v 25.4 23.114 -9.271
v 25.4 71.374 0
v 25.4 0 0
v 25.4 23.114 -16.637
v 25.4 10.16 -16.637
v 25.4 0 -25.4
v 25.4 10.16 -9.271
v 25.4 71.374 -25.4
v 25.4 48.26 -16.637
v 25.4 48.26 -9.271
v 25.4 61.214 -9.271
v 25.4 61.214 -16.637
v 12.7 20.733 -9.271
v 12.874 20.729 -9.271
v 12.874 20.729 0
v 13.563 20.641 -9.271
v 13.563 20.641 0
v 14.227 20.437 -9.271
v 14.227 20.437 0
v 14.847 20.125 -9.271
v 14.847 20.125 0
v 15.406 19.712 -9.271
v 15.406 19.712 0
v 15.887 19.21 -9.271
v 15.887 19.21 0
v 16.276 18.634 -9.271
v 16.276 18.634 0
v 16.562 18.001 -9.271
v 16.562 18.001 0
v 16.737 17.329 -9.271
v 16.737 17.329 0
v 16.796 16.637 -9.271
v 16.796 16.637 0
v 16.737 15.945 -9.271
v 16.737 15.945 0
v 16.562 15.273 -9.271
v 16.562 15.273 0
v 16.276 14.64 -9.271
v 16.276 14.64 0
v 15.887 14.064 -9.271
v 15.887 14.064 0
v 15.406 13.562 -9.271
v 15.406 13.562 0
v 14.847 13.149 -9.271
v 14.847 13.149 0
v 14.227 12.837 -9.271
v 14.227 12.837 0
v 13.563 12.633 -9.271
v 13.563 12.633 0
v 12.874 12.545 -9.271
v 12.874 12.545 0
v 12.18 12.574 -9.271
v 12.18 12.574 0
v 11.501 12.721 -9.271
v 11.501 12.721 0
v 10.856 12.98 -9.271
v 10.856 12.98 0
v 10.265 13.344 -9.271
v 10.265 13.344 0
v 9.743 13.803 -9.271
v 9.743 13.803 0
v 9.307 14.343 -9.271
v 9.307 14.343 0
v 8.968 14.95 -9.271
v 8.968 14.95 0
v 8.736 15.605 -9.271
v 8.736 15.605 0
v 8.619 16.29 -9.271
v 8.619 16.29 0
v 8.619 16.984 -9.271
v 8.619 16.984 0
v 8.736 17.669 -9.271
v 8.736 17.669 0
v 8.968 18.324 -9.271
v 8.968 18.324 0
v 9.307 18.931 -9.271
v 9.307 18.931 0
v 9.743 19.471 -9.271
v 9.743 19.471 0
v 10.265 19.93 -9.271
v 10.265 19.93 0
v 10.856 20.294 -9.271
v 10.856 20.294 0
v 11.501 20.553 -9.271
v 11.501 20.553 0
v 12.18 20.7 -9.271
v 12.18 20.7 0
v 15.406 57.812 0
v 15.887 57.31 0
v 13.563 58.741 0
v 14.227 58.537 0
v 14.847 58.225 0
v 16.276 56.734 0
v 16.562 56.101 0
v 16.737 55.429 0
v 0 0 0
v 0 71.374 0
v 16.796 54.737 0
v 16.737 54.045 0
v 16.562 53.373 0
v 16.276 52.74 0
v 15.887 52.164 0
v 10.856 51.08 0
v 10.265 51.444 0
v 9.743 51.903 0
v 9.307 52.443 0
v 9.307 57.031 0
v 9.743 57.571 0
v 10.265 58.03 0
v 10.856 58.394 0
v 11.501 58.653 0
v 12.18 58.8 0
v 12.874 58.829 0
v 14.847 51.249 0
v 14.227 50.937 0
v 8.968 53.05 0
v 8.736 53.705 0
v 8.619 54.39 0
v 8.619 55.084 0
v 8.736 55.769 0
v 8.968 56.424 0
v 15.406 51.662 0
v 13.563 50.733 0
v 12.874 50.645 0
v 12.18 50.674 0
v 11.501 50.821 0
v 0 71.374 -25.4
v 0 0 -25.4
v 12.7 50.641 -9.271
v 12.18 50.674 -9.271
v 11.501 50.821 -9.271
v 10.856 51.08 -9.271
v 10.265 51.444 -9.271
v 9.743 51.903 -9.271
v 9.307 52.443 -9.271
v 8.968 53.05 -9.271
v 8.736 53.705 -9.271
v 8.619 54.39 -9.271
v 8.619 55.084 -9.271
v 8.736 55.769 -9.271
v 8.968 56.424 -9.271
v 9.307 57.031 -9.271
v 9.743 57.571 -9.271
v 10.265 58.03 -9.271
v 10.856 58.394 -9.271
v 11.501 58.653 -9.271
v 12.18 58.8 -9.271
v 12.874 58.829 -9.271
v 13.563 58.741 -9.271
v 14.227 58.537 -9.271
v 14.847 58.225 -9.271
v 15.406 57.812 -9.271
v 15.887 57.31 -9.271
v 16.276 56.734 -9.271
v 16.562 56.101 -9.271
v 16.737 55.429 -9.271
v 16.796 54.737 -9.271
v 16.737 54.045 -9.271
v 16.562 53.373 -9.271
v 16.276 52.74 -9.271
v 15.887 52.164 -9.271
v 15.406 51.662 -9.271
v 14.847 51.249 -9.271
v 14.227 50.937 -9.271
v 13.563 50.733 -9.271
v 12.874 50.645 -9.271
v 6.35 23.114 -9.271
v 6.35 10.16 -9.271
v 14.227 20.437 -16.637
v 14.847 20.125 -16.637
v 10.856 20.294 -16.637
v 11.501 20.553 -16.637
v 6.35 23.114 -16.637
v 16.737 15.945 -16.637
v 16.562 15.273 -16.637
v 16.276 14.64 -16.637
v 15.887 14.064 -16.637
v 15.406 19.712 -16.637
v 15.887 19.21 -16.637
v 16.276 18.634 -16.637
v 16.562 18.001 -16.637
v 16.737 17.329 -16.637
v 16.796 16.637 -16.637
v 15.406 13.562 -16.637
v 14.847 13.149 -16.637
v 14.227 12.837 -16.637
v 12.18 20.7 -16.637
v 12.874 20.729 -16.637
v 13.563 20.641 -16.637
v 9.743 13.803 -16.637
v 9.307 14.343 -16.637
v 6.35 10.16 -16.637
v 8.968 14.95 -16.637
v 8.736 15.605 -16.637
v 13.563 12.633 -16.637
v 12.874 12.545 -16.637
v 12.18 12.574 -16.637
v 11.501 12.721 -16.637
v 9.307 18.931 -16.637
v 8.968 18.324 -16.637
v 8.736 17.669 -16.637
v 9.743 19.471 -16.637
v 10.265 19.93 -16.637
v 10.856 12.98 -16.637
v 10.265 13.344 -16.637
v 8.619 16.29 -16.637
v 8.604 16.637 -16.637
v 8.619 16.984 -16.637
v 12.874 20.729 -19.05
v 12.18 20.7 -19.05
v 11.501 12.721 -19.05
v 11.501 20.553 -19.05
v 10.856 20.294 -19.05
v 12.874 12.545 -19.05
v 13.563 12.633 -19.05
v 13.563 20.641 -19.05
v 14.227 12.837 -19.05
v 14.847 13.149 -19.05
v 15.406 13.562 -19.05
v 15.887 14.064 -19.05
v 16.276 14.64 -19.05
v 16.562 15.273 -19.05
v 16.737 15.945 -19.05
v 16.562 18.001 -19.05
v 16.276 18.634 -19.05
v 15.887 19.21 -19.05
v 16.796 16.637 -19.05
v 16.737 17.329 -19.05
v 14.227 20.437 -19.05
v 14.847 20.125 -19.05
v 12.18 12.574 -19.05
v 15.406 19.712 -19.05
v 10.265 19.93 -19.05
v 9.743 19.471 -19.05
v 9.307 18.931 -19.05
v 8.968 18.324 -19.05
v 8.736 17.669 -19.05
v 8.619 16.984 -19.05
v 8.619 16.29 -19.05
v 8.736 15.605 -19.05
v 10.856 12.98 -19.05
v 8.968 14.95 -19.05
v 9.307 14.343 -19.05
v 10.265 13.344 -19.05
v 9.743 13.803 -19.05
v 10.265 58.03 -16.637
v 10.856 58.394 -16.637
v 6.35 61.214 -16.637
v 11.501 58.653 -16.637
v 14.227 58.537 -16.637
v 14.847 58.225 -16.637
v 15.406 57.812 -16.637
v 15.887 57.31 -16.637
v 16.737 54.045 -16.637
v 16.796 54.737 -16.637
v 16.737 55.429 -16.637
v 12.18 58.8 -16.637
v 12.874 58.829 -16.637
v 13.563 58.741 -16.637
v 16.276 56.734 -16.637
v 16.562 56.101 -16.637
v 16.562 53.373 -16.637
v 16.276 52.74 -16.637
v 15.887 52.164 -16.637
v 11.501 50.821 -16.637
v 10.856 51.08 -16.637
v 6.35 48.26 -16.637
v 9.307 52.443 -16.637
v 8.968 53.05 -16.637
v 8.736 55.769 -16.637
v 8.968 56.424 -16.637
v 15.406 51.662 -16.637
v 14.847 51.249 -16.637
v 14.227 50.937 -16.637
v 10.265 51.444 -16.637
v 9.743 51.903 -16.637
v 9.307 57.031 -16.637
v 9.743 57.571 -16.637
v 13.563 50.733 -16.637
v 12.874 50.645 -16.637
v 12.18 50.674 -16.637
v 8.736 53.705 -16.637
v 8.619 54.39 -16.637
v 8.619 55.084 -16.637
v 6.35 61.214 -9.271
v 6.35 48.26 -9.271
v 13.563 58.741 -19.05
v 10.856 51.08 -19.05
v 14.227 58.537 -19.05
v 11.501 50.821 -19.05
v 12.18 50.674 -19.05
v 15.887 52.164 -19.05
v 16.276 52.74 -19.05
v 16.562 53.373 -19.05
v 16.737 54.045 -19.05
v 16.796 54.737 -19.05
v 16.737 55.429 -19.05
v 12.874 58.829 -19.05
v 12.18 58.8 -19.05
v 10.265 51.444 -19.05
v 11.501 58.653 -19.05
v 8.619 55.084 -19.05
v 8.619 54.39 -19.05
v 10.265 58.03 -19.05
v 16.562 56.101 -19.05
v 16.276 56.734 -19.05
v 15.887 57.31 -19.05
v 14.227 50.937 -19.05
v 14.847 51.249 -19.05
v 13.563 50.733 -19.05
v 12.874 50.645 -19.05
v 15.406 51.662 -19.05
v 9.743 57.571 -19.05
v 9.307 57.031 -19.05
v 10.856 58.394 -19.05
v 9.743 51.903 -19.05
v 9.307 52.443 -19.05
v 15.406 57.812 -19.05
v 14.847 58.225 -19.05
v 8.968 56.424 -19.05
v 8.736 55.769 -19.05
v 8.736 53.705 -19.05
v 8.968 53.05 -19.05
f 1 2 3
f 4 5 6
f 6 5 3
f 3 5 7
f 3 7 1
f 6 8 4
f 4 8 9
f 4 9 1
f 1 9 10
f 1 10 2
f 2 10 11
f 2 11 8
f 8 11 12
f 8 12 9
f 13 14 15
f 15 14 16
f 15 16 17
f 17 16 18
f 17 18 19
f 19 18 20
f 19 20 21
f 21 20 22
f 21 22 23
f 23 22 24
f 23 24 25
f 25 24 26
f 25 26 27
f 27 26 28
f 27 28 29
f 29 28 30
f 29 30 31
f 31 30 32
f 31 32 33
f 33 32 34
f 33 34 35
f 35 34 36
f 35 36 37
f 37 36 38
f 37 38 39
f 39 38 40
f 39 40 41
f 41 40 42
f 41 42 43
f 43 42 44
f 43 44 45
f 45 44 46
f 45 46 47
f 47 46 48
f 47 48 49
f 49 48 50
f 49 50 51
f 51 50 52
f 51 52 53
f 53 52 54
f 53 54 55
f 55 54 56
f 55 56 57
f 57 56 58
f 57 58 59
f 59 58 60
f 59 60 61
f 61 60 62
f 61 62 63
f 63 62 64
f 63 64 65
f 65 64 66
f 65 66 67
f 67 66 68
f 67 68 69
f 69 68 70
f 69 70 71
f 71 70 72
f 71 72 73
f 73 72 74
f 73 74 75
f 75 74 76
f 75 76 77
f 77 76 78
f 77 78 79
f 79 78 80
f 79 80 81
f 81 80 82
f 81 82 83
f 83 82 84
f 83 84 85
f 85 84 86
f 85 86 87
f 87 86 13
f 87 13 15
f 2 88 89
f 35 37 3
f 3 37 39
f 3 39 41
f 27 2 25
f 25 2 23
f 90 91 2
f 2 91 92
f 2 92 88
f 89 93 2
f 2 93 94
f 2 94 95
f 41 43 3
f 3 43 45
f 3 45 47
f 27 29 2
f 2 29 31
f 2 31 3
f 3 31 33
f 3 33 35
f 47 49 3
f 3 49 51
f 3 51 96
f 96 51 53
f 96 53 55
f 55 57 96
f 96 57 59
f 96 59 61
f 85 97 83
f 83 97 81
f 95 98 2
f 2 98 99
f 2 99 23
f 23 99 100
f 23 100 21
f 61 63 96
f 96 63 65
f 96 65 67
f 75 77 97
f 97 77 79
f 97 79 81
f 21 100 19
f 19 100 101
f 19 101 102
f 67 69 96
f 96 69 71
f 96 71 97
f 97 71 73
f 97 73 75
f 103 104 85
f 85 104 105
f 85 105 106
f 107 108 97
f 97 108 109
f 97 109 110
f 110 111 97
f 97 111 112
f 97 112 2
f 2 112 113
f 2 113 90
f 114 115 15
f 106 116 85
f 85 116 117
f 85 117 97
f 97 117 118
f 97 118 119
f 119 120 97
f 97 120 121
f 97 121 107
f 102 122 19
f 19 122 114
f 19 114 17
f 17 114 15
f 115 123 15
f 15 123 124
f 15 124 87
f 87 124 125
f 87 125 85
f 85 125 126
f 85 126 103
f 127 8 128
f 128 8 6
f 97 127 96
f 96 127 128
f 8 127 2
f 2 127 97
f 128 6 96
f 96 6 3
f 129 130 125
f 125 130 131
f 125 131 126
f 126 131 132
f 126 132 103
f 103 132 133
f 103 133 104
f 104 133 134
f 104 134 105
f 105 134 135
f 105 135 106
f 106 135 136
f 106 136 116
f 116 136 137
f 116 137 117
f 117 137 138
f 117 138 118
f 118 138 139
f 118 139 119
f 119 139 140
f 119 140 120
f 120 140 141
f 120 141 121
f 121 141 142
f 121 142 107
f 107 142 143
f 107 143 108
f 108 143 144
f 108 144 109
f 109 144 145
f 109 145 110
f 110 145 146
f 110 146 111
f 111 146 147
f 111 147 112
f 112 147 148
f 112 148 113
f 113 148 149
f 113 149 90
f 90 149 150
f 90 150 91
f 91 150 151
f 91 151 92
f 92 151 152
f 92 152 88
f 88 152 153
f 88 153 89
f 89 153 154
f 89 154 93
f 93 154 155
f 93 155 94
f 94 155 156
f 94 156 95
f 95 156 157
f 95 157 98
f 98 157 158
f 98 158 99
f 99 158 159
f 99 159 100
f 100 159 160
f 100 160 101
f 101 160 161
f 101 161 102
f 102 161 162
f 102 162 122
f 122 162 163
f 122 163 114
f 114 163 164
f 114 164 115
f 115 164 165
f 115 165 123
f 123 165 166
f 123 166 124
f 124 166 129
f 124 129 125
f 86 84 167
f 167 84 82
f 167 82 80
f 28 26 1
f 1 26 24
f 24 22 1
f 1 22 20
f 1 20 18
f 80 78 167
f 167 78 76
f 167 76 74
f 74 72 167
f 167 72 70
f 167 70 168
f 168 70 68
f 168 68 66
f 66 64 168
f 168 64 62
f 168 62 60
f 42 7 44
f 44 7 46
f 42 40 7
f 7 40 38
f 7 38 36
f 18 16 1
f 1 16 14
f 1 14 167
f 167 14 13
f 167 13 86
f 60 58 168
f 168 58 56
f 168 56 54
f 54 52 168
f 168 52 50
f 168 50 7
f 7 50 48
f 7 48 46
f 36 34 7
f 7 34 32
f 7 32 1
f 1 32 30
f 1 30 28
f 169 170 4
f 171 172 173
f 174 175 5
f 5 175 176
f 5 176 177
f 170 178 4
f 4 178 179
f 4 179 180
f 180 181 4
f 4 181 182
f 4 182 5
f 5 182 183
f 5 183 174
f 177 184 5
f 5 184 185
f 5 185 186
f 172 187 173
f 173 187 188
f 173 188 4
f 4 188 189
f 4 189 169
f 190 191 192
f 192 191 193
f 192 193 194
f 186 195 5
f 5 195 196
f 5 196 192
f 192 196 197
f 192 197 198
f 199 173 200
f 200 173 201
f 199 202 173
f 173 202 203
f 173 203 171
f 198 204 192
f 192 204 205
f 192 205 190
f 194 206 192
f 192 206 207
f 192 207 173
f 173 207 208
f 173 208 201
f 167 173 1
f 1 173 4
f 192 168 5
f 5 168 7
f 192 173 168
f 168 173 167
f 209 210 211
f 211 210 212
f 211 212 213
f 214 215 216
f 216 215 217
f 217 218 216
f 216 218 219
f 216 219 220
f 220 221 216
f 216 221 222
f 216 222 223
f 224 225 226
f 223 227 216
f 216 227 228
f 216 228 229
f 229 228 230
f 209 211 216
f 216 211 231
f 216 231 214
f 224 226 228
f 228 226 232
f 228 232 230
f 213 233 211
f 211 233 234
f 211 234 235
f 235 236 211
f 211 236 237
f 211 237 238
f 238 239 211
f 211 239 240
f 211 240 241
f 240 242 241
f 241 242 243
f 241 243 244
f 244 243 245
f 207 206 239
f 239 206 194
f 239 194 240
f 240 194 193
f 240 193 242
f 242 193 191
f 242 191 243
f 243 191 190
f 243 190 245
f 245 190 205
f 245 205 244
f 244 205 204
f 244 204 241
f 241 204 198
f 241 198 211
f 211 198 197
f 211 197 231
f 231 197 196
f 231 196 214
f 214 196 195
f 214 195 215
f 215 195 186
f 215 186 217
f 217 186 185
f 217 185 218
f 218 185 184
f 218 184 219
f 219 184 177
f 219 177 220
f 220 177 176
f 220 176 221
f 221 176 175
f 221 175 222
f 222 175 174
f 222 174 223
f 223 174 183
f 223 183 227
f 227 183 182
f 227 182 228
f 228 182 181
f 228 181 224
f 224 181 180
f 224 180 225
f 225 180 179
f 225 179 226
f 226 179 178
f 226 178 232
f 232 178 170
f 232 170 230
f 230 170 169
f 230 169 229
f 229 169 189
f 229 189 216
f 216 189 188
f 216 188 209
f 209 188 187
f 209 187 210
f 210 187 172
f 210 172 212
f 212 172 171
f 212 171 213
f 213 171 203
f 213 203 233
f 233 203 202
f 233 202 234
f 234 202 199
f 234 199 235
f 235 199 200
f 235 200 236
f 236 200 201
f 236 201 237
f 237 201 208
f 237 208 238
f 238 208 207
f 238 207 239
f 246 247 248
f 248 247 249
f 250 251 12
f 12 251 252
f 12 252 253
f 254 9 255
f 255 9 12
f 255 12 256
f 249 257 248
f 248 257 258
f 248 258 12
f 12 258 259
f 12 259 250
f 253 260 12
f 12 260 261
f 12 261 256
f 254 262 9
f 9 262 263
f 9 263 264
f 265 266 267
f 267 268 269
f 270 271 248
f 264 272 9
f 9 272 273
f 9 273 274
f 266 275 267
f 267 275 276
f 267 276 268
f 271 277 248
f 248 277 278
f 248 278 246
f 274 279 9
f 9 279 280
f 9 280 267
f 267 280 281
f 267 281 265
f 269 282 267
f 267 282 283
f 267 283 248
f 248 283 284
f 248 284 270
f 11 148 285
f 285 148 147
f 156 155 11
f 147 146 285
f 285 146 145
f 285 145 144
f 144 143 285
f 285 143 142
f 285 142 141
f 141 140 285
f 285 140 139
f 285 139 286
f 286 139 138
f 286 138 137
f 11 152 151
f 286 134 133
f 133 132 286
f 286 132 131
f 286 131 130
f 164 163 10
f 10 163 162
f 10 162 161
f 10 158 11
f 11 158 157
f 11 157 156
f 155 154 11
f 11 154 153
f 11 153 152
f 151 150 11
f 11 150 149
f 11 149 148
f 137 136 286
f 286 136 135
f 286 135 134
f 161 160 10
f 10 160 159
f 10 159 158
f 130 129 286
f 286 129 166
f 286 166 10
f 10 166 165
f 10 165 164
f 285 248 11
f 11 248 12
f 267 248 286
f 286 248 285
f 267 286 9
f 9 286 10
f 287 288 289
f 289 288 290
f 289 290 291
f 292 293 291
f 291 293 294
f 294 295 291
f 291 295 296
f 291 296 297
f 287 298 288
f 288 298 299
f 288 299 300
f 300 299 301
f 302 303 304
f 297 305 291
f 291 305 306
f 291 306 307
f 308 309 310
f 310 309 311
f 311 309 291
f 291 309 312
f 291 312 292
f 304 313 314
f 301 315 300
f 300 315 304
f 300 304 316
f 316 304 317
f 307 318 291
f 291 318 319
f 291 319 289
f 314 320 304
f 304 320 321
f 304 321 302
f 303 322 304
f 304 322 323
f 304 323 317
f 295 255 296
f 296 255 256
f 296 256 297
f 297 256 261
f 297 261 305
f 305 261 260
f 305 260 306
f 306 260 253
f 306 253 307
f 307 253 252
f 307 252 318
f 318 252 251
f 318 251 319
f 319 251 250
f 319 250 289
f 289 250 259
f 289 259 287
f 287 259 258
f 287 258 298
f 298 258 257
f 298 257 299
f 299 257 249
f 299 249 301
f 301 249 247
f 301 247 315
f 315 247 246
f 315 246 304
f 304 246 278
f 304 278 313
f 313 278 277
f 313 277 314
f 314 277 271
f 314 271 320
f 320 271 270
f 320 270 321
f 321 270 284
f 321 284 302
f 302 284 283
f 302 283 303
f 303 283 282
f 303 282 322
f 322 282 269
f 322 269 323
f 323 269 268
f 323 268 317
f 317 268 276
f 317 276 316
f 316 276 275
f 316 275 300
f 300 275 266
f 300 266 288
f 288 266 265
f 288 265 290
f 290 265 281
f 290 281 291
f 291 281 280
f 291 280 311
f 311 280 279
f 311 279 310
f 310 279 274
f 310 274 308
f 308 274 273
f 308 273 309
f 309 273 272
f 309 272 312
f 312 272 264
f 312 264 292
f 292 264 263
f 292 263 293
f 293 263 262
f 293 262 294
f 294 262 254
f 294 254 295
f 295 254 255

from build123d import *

# Parameters (mm, degrees)
SKETCH1_W           = 25.4
SKETCH1_H           = 25.4
BOSS_EXTRUDE1_DEPTH = 71.374
SKETCH2_R           = 4.09575
CUT_EXTRUDE1_DEPTH  = 19.05
SKETCH5_W           = 7.366
SKETCH5_H           = 12.954
CUT_EXTRUDE2_DEPTH  = 19.05


with BuildPart() as part:
    # Sketch1 → Boss-Extrude1 (new body)
    with BuildSketch(Plane(origin=(0, 0, 0), x_dir=(1, 0, 0), z_dir=(0, 1, 0))):
        with Locations((12.7, 12.7)):
            Rectangle(SKETCH1_W, SKETCH1_H)
    extrude(amount=BOSS_EXTRUDE1_DEPTH)

    # Sketch2 → Cut-Extrude1 (cut)
    with BuildSketch(Plane.XY):
        with Locations((12.7, 54.737)):
            Circle(SKETCH2_R)
        with Locations((12.7, 16.637)):
            Circle(SKETCH2_R)
    extrude(amount=-CUT_EXTRUDE1_DEPTH, mode=Mode.SUBTRACT)

    # Sketch5 → Cut-Extrude2 (cut)
    with BuildSketch(Plane(origin=(25.4, 0, 0), x_dir=(0, 0, -1), z_dir=(1, 0, 0))):
        with Locations((12.954, 54.737)):
            Rectangle(SKETCH5_W, SKETCH5_H)
        with Locations((12.954, 16.637)):
            Rectangle(SKETCH5_W, SKETCH5_H)
    extrude(amount=-CUT_EXTRUDE2_DEPTH, mode=Mode.SUBTRACT)


solid = part.part
